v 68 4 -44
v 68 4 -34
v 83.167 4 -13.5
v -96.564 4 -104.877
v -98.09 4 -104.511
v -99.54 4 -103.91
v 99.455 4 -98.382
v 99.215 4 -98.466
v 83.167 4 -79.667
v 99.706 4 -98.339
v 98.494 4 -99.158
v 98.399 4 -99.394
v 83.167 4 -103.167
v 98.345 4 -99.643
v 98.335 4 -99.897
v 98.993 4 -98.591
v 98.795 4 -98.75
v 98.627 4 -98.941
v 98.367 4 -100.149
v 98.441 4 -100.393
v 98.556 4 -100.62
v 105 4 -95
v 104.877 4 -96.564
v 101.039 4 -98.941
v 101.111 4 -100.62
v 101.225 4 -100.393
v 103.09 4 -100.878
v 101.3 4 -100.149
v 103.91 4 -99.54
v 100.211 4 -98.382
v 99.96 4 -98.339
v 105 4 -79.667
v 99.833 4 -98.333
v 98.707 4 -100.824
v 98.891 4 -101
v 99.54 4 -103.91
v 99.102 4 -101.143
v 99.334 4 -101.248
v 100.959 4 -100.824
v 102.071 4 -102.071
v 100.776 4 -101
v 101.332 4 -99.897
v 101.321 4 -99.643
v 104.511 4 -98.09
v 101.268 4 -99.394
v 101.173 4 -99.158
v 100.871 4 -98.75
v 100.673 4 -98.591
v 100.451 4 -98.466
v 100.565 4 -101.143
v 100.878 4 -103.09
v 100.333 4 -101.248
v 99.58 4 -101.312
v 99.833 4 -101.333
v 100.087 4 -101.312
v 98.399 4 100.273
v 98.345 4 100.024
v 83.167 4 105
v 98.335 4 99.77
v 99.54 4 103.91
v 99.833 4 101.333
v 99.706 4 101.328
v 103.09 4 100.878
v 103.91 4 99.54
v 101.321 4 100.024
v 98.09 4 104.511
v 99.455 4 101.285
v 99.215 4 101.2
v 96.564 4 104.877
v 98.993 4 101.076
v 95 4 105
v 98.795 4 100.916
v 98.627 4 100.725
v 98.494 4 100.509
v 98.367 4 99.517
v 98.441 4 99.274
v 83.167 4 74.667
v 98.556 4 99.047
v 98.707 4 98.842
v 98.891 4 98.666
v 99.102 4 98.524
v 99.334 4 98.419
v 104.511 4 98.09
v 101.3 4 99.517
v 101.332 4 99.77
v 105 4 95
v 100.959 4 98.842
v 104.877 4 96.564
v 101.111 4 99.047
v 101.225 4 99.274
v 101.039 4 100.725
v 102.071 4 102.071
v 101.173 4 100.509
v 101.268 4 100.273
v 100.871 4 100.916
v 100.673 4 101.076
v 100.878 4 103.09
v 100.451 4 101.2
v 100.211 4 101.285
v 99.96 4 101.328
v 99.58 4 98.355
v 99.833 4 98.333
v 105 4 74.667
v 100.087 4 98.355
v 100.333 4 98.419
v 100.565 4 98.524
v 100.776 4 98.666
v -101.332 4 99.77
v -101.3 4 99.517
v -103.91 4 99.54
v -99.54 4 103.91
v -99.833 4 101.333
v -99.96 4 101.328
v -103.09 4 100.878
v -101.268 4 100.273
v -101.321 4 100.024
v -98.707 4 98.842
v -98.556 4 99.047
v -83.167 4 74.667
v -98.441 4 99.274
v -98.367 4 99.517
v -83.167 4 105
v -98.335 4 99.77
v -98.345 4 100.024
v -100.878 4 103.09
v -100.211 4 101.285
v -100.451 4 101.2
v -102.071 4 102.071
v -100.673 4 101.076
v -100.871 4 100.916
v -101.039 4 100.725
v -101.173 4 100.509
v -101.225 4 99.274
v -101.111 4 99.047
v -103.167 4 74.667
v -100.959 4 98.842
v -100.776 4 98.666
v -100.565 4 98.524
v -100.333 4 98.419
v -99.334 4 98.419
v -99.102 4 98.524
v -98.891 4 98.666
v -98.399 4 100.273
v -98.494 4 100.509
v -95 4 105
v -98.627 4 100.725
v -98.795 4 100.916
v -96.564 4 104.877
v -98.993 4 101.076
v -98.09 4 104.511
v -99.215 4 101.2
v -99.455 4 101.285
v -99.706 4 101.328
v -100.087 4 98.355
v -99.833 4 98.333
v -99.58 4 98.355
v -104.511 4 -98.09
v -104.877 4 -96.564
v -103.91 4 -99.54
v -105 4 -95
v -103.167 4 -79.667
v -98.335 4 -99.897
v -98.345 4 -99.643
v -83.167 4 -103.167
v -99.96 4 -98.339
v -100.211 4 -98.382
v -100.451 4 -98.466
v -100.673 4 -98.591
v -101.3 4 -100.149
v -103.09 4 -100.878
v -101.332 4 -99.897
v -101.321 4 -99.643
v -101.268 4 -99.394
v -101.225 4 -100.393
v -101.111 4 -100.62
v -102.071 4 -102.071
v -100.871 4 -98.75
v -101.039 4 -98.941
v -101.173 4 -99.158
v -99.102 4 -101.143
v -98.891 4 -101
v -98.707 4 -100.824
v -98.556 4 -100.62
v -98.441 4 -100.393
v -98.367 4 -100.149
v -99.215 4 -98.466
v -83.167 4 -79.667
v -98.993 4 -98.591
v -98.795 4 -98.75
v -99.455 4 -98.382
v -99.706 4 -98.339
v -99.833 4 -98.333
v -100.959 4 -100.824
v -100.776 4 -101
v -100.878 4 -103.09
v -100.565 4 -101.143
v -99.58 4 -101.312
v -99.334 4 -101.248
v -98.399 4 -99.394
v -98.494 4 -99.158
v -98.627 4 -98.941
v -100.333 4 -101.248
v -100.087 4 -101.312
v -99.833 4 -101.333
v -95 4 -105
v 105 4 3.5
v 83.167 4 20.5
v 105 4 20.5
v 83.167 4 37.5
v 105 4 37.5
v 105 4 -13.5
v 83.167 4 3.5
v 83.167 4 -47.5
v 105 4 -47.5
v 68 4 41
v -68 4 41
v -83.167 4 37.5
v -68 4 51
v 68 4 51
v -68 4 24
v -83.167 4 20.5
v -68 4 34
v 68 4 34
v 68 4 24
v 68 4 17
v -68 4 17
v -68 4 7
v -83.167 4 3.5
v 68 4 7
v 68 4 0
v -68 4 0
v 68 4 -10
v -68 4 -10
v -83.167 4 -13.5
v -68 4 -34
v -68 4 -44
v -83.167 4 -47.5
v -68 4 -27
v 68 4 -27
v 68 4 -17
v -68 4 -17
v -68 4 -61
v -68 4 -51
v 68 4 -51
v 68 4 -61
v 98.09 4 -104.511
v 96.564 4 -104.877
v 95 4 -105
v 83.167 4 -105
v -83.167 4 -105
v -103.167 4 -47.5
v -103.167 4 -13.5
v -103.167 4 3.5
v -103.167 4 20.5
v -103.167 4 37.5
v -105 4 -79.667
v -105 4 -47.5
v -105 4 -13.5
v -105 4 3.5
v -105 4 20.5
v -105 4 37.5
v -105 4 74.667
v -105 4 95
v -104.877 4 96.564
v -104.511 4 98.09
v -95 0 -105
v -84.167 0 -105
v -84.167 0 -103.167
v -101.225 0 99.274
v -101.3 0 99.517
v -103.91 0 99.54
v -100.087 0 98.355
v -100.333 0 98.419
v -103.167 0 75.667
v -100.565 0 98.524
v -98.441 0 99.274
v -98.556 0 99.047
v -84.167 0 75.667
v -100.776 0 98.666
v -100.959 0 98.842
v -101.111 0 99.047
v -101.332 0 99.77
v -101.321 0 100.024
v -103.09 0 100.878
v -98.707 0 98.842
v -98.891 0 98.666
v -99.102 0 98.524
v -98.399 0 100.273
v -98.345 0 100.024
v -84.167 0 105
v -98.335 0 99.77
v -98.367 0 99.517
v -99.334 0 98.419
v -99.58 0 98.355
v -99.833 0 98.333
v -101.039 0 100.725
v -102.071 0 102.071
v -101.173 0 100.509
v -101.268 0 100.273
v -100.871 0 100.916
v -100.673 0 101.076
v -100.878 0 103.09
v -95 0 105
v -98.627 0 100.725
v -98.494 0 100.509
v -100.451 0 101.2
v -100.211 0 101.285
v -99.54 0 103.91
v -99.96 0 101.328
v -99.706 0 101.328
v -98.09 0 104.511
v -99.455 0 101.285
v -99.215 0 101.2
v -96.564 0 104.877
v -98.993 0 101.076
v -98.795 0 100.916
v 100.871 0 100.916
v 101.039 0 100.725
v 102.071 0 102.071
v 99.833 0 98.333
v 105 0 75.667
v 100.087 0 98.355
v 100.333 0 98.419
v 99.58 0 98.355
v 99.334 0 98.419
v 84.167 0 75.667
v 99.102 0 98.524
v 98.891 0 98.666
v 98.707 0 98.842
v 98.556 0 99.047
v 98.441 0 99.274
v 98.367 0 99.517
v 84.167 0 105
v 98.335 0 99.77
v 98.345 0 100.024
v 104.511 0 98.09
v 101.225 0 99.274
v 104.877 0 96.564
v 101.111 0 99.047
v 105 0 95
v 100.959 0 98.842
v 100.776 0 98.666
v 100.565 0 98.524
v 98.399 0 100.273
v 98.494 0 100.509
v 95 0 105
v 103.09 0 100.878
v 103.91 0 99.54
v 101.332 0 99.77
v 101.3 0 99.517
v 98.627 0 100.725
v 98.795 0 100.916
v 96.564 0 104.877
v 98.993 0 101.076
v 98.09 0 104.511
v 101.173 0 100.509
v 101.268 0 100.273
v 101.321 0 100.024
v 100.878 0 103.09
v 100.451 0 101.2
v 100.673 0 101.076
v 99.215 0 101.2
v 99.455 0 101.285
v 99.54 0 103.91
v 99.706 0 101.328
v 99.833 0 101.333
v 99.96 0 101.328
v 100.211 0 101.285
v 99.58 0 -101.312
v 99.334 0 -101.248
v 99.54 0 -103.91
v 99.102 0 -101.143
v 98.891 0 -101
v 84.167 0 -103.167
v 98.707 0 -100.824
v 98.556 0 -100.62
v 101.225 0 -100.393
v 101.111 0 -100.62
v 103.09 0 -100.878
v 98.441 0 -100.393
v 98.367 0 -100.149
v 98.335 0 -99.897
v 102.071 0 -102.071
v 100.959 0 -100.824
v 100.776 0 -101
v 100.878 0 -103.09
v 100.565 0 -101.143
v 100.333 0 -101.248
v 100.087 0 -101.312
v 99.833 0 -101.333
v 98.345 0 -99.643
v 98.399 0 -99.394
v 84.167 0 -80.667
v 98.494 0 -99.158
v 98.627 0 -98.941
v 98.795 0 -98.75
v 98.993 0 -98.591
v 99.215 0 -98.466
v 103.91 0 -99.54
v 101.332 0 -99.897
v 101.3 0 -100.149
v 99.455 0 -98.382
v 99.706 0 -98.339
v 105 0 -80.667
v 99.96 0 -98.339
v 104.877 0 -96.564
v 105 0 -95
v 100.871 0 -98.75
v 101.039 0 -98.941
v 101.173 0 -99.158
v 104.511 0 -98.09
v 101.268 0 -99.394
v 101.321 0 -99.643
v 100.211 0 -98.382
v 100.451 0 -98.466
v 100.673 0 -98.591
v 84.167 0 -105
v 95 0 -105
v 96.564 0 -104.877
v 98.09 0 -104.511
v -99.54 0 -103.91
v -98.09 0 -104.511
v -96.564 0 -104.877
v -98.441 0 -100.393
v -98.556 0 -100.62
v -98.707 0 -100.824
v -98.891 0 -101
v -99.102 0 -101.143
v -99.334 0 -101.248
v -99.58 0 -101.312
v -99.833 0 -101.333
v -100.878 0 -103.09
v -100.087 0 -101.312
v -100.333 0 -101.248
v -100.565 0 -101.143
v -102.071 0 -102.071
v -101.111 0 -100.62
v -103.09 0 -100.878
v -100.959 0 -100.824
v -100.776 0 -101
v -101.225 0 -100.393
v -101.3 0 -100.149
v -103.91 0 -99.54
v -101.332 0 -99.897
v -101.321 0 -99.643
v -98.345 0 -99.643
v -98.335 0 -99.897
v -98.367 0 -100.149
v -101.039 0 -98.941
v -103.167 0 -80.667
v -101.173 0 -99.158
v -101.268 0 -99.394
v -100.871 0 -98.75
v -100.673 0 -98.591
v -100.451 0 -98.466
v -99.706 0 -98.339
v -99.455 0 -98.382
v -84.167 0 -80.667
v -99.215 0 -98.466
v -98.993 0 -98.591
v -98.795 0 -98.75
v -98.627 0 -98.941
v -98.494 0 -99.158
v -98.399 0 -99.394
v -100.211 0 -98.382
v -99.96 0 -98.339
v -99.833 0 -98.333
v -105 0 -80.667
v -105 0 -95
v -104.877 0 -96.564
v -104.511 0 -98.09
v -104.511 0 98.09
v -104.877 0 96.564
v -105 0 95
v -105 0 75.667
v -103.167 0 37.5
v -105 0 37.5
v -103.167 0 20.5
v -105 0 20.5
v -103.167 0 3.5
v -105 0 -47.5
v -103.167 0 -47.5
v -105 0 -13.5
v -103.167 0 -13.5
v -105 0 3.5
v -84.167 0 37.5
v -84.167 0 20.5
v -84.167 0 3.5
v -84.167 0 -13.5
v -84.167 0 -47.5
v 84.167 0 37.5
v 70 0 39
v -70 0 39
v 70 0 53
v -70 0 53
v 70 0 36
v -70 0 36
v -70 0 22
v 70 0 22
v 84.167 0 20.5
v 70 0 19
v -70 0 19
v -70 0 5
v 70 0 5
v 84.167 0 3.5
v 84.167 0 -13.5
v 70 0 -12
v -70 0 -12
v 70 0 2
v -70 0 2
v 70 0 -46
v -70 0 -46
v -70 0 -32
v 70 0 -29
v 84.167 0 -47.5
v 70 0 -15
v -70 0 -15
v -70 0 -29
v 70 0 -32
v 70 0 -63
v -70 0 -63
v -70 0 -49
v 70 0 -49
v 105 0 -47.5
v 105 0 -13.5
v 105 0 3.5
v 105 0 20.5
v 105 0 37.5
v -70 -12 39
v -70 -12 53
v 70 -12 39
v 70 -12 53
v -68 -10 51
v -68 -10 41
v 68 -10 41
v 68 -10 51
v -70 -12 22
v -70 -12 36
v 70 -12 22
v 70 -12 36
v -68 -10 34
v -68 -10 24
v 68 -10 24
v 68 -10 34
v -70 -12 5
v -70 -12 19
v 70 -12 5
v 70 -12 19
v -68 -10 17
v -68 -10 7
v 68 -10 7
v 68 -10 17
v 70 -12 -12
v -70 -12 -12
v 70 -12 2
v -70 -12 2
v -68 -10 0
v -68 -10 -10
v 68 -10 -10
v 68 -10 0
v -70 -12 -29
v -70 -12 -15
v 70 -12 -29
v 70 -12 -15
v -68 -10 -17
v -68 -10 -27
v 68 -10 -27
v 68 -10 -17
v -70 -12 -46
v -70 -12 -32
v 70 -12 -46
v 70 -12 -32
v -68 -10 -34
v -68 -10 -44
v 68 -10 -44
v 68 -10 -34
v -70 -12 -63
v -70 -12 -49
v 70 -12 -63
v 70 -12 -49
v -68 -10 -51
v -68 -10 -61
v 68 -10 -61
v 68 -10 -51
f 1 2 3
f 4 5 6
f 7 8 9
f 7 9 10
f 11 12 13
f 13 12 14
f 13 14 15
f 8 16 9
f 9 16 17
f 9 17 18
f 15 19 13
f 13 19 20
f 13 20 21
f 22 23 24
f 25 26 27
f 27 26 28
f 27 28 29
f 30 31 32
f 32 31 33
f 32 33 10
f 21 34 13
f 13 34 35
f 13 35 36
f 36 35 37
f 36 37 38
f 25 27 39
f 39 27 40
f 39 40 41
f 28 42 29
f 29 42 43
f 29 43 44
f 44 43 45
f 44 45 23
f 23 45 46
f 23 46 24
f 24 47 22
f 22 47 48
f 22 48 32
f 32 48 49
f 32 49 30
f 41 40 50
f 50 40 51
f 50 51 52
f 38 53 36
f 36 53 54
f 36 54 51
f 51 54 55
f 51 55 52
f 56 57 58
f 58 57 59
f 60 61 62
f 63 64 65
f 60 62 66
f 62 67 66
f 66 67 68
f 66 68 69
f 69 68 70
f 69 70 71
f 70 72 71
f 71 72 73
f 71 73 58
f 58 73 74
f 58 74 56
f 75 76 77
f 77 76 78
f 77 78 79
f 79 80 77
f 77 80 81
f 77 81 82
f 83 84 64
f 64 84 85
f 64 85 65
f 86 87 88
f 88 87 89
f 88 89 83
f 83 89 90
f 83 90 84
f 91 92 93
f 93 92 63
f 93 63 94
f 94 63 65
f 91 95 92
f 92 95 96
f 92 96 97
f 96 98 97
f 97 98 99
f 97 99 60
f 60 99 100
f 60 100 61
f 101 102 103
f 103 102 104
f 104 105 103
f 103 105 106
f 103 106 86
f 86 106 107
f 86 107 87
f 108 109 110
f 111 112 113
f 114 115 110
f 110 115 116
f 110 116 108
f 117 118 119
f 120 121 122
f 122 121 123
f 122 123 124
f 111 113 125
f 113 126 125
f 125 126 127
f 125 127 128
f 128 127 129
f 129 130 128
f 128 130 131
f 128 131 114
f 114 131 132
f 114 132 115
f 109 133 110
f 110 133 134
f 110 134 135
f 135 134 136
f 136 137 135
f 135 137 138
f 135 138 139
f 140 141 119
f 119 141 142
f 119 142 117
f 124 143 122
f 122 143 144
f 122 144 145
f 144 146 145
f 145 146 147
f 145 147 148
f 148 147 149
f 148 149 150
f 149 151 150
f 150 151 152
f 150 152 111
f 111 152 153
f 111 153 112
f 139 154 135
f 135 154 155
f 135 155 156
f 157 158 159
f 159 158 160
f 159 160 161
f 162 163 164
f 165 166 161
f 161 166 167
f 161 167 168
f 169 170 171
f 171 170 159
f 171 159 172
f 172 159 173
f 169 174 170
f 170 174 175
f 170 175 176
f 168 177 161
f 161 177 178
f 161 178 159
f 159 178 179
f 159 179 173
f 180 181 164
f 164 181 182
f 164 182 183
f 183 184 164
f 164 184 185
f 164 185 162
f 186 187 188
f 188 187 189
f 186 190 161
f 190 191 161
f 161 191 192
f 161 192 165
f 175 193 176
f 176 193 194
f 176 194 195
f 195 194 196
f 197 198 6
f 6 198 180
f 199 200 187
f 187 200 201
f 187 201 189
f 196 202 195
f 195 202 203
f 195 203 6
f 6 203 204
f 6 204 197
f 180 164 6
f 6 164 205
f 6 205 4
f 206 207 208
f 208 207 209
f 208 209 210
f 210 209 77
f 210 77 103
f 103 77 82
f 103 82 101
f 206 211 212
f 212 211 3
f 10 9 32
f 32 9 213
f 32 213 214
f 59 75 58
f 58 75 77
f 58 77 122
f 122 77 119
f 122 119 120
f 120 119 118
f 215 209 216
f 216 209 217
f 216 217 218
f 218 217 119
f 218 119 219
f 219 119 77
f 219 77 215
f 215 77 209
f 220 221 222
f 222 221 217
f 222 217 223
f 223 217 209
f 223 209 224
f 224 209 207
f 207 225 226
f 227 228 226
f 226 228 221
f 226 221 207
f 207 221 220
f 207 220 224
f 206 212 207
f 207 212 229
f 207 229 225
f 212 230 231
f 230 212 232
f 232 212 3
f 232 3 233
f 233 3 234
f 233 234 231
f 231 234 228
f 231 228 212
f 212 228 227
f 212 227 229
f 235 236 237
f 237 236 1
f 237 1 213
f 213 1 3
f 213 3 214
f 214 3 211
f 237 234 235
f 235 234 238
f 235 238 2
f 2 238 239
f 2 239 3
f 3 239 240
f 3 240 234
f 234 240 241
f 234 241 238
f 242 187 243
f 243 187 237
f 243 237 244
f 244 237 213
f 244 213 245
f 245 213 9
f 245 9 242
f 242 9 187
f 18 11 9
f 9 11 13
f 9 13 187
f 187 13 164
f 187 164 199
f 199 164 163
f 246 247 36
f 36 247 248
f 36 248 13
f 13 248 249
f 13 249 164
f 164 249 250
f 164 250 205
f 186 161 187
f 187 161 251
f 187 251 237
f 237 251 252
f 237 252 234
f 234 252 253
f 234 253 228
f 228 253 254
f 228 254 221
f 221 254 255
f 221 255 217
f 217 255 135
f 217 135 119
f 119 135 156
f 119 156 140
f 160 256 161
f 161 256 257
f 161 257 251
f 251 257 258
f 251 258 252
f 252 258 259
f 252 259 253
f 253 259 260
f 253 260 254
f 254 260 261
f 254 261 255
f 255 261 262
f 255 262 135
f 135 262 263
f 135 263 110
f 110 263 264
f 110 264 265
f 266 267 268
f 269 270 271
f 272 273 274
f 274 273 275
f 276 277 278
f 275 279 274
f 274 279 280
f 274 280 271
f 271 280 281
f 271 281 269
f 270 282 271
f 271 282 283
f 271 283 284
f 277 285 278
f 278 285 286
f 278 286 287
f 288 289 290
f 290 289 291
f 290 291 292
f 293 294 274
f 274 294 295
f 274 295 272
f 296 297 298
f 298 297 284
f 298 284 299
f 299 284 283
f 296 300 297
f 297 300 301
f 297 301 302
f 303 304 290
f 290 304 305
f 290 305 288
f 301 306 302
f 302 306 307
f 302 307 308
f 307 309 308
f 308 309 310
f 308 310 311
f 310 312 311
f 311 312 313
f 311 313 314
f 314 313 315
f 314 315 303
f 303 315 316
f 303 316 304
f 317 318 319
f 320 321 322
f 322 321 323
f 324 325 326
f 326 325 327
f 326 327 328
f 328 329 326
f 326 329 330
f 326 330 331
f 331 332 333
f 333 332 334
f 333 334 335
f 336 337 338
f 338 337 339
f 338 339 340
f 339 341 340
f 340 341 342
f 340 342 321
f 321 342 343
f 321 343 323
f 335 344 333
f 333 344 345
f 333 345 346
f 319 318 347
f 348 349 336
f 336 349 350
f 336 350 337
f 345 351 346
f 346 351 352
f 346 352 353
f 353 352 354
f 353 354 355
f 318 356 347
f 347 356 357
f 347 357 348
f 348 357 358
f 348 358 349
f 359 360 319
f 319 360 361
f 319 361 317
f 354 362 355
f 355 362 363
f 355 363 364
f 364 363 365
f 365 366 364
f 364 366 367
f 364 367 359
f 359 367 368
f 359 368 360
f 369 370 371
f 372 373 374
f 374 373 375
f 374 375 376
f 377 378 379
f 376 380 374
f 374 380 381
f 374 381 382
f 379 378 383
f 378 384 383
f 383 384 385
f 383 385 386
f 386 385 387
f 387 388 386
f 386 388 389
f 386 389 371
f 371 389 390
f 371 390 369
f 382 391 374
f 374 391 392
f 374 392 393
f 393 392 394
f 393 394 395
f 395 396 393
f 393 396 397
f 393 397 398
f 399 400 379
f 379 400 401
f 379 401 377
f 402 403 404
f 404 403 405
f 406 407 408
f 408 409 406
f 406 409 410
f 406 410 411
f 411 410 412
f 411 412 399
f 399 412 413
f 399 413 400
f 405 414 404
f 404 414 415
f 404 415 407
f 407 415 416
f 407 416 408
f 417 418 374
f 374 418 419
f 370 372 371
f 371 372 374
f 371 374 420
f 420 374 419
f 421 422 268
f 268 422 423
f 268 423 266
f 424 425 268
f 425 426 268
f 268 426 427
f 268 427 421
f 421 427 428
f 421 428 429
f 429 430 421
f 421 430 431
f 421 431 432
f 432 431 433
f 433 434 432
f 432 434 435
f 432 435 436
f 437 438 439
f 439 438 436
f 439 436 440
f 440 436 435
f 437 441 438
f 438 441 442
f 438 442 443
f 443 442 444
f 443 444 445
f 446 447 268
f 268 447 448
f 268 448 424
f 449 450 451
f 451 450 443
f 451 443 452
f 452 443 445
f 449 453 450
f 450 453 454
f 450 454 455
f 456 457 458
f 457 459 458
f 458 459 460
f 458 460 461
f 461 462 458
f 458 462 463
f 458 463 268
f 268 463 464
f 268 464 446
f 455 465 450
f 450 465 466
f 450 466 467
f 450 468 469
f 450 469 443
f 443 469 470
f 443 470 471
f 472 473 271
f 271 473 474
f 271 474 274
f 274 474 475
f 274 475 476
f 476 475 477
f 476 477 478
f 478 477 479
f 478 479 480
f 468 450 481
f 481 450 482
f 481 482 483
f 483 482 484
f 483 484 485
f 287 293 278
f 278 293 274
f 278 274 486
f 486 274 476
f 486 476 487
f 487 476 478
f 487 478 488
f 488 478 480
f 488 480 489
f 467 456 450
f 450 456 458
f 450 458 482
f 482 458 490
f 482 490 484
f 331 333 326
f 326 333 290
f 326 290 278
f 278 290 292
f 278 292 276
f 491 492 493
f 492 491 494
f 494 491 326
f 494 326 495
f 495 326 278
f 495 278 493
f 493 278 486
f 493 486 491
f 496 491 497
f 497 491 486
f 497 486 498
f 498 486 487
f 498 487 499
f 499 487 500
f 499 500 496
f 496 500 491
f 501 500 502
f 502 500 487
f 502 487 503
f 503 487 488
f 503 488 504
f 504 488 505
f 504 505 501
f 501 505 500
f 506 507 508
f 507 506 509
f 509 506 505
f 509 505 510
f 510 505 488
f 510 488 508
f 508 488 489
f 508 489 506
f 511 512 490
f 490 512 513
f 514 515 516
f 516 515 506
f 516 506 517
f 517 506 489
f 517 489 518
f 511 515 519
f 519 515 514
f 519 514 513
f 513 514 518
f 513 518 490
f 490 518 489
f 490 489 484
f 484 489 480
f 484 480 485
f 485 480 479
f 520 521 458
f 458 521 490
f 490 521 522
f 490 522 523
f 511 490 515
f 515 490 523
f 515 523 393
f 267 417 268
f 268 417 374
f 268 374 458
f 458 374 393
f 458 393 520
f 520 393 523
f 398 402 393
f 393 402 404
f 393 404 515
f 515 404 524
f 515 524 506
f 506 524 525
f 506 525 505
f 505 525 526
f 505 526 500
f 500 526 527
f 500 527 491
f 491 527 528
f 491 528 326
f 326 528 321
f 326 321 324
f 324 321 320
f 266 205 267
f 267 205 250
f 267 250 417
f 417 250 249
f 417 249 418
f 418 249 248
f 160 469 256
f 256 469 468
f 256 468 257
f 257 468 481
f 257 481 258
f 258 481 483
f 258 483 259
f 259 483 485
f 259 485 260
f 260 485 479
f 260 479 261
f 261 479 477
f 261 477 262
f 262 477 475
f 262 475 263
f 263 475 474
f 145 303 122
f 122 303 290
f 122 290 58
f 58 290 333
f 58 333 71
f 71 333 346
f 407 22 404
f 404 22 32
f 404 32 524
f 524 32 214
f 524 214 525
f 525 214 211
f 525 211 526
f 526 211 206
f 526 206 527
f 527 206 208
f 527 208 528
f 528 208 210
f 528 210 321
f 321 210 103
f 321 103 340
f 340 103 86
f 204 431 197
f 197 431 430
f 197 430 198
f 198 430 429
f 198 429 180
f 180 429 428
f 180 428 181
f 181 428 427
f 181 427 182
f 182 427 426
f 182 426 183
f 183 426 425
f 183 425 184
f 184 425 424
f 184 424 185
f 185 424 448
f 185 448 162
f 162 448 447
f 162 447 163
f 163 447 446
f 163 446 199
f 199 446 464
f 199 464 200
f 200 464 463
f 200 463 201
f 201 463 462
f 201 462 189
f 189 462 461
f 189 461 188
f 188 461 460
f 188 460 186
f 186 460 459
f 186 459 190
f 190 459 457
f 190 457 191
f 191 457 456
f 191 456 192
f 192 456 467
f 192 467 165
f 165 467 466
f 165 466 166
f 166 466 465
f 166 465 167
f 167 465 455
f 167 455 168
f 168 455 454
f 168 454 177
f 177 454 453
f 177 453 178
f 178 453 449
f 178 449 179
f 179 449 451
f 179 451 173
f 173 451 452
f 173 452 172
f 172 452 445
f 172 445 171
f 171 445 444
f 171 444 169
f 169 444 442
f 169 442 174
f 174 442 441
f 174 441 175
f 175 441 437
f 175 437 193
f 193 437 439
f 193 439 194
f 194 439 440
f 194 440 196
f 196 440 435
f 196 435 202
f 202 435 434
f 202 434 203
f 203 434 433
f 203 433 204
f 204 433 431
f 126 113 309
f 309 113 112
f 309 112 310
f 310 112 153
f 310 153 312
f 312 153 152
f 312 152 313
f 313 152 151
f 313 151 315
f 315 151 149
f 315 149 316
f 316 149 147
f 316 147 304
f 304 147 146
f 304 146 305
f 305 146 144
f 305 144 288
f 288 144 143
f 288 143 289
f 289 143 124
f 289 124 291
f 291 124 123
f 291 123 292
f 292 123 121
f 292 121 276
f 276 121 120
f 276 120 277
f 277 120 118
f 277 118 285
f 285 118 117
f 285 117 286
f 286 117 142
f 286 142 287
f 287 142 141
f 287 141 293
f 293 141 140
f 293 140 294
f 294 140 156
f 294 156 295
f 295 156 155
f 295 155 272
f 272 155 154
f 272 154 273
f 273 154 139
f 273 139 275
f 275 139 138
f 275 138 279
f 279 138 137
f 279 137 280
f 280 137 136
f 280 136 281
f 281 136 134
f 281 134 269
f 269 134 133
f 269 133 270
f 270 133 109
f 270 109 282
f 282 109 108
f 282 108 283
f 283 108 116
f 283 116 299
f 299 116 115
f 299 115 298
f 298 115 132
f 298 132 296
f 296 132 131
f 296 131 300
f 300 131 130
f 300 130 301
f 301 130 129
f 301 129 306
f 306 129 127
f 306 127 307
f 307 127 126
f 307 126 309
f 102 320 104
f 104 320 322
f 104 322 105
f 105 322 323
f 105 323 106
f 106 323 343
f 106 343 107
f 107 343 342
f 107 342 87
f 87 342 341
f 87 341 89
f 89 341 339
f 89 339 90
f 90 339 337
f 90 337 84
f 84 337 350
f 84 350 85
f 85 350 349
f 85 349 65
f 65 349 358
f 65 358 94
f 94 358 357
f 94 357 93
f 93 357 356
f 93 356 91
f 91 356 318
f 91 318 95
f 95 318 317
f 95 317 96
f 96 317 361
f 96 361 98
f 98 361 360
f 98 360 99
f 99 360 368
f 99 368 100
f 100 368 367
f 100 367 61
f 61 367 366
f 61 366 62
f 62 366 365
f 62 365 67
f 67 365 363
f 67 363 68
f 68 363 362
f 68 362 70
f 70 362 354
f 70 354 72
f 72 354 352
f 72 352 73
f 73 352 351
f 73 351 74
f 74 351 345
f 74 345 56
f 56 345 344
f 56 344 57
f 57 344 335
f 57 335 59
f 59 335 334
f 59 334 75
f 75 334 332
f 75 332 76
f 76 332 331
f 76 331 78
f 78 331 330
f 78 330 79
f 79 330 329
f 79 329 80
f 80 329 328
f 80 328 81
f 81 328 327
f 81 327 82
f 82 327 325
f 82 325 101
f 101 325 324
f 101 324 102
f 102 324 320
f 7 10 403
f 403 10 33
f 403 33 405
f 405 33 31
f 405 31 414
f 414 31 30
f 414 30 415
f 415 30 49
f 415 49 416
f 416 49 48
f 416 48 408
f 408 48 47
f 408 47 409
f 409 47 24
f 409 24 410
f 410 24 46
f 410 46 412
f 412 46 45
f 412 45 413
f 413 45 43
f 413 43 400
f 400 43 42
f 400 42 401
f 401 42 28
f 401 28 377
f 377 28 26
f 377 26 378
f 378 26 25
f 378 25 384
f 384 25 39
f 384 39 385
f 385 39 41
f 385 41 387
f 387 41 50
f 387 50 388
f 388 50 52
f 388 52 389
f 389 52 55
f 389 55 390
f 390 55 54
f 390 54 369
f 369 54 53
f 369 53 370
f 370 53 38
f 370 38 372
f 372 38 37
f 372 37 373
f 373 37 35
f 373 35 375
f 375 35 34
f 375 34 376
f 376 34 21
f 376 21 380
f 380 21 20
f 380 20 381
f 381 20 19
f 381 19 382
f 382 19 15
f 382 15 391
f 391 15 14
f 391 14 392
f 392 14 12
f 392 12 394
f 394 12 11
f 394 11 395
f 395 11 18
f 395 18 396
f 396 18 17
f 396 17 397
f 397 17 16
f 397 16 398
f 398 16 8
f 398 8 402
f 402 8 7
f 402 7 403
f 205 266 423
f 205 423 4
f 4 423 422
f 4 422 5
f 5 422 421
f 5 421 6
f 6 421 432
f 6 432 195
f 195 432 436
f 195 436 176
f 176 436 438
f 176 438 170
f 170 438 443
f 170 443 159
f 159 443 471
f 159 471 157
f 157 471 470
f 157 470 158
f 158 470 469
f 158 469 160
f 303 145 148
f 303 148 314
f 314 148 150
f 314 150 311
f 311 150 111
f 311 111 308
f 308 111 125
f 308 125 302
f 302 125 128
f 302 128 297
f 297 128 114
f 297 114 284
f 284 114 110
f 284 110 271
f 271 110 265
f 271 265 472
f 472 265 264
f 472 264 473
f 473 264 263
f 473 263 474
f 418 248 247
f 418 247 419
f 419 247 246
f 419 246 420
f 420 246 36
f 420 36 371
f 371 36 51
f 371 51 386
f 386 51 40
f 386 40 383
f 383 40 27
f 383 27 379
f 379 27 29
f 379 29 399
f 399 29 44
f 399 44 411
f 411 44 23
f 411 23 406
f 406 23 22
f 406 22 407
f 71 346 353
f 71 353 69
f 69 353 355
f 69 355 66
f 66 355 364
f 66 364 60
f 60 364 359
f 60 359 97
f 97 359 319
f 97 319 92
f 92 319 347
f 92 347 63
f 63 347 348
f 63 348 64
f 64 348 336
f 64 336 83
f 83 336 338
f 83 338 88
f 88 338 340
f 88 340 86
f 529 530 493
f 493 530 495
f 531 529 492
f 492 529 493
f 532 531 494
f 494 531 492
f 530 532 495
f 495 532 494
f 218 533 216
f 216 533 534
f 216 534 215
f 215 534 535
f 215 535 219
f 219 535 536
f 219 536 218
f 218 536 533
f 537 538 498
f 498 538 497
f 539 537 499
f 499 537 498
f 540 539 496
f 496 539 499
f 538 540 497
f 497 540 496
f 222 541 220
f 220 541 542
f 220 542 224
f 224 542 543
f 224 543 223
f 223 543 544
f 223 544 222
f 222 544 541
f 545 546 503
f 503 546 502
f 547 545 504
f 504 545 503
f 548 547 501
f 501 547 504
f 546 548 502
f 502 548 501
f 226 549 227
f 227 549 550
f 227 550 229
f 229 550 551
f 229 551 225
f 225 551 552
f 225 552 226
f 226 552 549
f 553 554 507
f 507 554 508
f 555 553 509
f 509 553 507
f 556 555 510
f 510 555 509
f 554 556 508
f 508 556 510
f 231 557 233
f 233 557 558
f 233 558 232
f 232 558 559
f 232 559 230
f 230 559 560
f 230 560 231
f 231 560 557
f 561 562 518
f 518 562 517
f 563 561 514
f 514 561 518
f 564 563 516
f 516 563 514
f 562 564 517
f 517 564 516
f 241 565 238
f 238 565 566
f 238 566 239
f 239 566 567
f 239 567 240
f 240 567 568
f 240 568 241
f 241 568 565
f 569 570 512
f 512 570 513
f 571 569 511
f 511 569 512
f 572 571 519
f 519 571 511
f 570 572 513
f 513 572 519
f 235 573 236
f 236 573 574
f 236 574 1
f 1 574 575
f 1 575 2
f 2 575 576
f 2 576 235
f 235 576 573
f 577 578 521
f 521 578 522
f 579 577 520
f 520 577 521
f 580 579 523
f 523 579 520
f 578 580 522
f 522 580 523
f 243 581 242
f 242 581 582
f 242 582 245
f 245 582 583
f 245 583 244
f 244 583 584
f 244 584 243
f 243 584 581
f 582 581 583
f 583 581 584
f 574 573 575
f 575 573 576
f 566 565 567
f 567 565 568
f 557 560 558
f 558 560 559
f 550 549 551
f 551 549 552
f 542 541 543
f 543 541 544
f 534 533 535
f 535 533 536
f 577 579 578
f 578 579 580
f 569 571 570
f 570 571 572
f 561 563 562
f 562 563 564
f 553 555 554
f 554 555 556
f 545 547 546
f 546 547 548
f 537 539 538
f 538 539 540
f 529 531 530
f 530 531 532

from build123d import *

# Parameters (mm, degrees)
SKETCH1_W           = 210
SKETCH1_H           = 210
MAINEXTRUDE_DEPTH   = 4
SKETCH1_6_R         = 1.5
SCREWHOLES_DEPTH    = 4
ROUNDEDCORNERS_R    = 10
SKETCH4_W           = 140
SKETCH4_H           = 14
SKETCH4_W_2         = 136
SKETCH4_H_2         = 10
TRENCH_WALLS_DEPTH  = 10
SKETCH3_W           = 136
SKETCH3_H           = 10
TRENCH_DEPTH        = 12
SKETCH6_W           = 140
SKETCH6_H           = 14
TRENCH_BOTTOM_DEPTH = 2


with BuildPart() as part:
    # Sketch1 → MainExtrude (new body)
    with BuildSketch(Plane(origin=(0, 0, 0), x_dir=(1, 0, 0), z_dir=(0, 1, 0))):
        Rectangle(SKETCH1_W, SKETCH1_H)
    extrude(amount=MAINEXTRUDE_DEPTH)

    # Sketch1<6> → ScrewHoles (cut)
    with BuildSketch(Plane(origin=(0, 0, 0), x_dir=(1, 0, 0), z_dir=(0, 1, 0))):
        with Locations((-99.833273811, 99.833273811)):
            Circle(SKETCH1_6_R)
        with Locations((-99.833273811, -99.833273811)):
            Circle(SKETCH1_6_R)
        with Locations((99.833273811, -99.833273811)):
            Circle(SKETCH1_6_R)
        with Locations((99.833273811, 99.833273811)):
            Circle(SKETCH1_6_R)
    extrude(amount=SCREWHOLES_DEPTH, mode=Mode.SUBTRACT)

    # RoundedCorners
    roundedcorners_edges = [part.edges().sort_by_distance(p)[0] for p in [
        (-105, 2, -105),
        (-105, 2, 105),
        (105, 2, 105),
        (105, 2, -105),
    ]]
    fillet(roundedcorners_edges, radius=ROUNDEDCORNERS_R)

    # Sketch4 → Trench Walls (add)
    with BuildSketch(Plane(origin=(0, 0, 0), x_dir=(1, 0, 0), z_dir=(0, 1, 0))):
        with Locations((0, 56)):
            Rectangle(SKETCH4_W, SKETCH4_H)
        with Locations((0, 56)):
            Rectangle(SKETCH4_W_2, SKETCH4_H_2, mode=Mode.SUBTRACT)
        with Locations((0, 39)):
            Rectangle(SKETCH4_W, SKETCH4_H)
        with Locations((0, 39)):
            Rectangle(SKETCH4_W_2, SKETCH4_H_2, mode=Mode.SUBTRACT)
        with Locations((0, 22)):
            Rectangle(SKETCH4_W, SKETCH4_H)
        with Locations((0, 22)):
            Rectangle(SKETCH4_W_2, SKETCH4_H_2, mode=Mode.SUBTRACT)
        with Locations((0, 5)):
            Rectangle(SKETCH4_W, SKETCH4_H)
        with Locations((0, 5)):
            Rectangle(SKETCH4_W_2, SKETCH4_H_2, mode=Mode.SUBTRACT)
        with Locations((0, -12)):
            Rectangle(SKETCH4_W, SKETCH4_H)
        with Locations((0, -12)):
            Rectangle(SKETCH4_W_2, SKETCH4_H_2, mode=Mode.SUBTRACT)
        with Locations((0, -29)):
            Rectangle(SKETCH4_W, SKETCH4_H)
        with Locations((0, -29)):
            Rectangle(SKETCH4_W_2, SKETCH4_H_2, mode=Mode.SUBTRACT)
        with Locations((0, -46)):
            Rectangle(SKETCH4_W, SKETCH4_H)
        with Locations((0, -46)):
            Rectangle(SKETCH4_W_2, SKETCH4_H_2, mode=Mode.SUBTRACT)
    extrude(amount=-TRENCH_WALLS_DEPTH)

    # Sketch3 → Trench (cut)
    with BuildSketch(Plane(origin=(0, 0, 0), x_dir=(1, 0, 0), z_dir=(0, 1, 0))):
        with Locations((0, 56)):
            Rectangle(SKETCH3_W, SKETCH3_H)
        with Locations((0, 39)):
            Rectangle(SKETCH3_W, SKETCH3_H)
        with Locations((0, 22)):
            Rectangle(SKETCH3_W, SKETCH3_H)
        with Locations((0, 5)):
            Rectangle(SKETCH3_W, SKETCH3_H)
        with Locations((0, -12)):
            Rectangle(SKETCH3_W, SKETCH3_H)
        with Locations((0, -29)):
            Rectangle(SKETCH3_W, SKETCH3_H)
        with Locations((0, -46)):
            Rectangle(SKETCH3_W, SKETCH3_H)
    extrude(amount=TRENCH_DEPTH, mode=Mode.SUBTRACT)

    # Sketch6 → Trench Bottom (add)
    with BuildSketch(Plane.XZ.offset(10)):
        with Locations((0, -56)):
            Rectangle(SKETCH6_W, SKETCH6_H)
        with Locations((0, -39)):
            Rectangle(SKETCH6_W, SKETCH6_H)
        with Locations((0, -22)):
            Rectangle(SKETCH6_W, SKETCH6_H)
        with Locations((0, -5)):
            Rectangle(SKETCH6_W, SKETCH6_H)
        with Locations((0, 12)):
            Rectangle(SKETCH6_W, SKETCH6_H)
        with Locations((0, 29)):
            Rectangle(SKETCH6_W, SKETCH6_H)
        with Locations((0, 46)):
            Rectangle(SKETCH6_W, SKETCH6_H)
    extrude(amount=TRENCH_BOTTOM_DEPTH)


solid = part.part
